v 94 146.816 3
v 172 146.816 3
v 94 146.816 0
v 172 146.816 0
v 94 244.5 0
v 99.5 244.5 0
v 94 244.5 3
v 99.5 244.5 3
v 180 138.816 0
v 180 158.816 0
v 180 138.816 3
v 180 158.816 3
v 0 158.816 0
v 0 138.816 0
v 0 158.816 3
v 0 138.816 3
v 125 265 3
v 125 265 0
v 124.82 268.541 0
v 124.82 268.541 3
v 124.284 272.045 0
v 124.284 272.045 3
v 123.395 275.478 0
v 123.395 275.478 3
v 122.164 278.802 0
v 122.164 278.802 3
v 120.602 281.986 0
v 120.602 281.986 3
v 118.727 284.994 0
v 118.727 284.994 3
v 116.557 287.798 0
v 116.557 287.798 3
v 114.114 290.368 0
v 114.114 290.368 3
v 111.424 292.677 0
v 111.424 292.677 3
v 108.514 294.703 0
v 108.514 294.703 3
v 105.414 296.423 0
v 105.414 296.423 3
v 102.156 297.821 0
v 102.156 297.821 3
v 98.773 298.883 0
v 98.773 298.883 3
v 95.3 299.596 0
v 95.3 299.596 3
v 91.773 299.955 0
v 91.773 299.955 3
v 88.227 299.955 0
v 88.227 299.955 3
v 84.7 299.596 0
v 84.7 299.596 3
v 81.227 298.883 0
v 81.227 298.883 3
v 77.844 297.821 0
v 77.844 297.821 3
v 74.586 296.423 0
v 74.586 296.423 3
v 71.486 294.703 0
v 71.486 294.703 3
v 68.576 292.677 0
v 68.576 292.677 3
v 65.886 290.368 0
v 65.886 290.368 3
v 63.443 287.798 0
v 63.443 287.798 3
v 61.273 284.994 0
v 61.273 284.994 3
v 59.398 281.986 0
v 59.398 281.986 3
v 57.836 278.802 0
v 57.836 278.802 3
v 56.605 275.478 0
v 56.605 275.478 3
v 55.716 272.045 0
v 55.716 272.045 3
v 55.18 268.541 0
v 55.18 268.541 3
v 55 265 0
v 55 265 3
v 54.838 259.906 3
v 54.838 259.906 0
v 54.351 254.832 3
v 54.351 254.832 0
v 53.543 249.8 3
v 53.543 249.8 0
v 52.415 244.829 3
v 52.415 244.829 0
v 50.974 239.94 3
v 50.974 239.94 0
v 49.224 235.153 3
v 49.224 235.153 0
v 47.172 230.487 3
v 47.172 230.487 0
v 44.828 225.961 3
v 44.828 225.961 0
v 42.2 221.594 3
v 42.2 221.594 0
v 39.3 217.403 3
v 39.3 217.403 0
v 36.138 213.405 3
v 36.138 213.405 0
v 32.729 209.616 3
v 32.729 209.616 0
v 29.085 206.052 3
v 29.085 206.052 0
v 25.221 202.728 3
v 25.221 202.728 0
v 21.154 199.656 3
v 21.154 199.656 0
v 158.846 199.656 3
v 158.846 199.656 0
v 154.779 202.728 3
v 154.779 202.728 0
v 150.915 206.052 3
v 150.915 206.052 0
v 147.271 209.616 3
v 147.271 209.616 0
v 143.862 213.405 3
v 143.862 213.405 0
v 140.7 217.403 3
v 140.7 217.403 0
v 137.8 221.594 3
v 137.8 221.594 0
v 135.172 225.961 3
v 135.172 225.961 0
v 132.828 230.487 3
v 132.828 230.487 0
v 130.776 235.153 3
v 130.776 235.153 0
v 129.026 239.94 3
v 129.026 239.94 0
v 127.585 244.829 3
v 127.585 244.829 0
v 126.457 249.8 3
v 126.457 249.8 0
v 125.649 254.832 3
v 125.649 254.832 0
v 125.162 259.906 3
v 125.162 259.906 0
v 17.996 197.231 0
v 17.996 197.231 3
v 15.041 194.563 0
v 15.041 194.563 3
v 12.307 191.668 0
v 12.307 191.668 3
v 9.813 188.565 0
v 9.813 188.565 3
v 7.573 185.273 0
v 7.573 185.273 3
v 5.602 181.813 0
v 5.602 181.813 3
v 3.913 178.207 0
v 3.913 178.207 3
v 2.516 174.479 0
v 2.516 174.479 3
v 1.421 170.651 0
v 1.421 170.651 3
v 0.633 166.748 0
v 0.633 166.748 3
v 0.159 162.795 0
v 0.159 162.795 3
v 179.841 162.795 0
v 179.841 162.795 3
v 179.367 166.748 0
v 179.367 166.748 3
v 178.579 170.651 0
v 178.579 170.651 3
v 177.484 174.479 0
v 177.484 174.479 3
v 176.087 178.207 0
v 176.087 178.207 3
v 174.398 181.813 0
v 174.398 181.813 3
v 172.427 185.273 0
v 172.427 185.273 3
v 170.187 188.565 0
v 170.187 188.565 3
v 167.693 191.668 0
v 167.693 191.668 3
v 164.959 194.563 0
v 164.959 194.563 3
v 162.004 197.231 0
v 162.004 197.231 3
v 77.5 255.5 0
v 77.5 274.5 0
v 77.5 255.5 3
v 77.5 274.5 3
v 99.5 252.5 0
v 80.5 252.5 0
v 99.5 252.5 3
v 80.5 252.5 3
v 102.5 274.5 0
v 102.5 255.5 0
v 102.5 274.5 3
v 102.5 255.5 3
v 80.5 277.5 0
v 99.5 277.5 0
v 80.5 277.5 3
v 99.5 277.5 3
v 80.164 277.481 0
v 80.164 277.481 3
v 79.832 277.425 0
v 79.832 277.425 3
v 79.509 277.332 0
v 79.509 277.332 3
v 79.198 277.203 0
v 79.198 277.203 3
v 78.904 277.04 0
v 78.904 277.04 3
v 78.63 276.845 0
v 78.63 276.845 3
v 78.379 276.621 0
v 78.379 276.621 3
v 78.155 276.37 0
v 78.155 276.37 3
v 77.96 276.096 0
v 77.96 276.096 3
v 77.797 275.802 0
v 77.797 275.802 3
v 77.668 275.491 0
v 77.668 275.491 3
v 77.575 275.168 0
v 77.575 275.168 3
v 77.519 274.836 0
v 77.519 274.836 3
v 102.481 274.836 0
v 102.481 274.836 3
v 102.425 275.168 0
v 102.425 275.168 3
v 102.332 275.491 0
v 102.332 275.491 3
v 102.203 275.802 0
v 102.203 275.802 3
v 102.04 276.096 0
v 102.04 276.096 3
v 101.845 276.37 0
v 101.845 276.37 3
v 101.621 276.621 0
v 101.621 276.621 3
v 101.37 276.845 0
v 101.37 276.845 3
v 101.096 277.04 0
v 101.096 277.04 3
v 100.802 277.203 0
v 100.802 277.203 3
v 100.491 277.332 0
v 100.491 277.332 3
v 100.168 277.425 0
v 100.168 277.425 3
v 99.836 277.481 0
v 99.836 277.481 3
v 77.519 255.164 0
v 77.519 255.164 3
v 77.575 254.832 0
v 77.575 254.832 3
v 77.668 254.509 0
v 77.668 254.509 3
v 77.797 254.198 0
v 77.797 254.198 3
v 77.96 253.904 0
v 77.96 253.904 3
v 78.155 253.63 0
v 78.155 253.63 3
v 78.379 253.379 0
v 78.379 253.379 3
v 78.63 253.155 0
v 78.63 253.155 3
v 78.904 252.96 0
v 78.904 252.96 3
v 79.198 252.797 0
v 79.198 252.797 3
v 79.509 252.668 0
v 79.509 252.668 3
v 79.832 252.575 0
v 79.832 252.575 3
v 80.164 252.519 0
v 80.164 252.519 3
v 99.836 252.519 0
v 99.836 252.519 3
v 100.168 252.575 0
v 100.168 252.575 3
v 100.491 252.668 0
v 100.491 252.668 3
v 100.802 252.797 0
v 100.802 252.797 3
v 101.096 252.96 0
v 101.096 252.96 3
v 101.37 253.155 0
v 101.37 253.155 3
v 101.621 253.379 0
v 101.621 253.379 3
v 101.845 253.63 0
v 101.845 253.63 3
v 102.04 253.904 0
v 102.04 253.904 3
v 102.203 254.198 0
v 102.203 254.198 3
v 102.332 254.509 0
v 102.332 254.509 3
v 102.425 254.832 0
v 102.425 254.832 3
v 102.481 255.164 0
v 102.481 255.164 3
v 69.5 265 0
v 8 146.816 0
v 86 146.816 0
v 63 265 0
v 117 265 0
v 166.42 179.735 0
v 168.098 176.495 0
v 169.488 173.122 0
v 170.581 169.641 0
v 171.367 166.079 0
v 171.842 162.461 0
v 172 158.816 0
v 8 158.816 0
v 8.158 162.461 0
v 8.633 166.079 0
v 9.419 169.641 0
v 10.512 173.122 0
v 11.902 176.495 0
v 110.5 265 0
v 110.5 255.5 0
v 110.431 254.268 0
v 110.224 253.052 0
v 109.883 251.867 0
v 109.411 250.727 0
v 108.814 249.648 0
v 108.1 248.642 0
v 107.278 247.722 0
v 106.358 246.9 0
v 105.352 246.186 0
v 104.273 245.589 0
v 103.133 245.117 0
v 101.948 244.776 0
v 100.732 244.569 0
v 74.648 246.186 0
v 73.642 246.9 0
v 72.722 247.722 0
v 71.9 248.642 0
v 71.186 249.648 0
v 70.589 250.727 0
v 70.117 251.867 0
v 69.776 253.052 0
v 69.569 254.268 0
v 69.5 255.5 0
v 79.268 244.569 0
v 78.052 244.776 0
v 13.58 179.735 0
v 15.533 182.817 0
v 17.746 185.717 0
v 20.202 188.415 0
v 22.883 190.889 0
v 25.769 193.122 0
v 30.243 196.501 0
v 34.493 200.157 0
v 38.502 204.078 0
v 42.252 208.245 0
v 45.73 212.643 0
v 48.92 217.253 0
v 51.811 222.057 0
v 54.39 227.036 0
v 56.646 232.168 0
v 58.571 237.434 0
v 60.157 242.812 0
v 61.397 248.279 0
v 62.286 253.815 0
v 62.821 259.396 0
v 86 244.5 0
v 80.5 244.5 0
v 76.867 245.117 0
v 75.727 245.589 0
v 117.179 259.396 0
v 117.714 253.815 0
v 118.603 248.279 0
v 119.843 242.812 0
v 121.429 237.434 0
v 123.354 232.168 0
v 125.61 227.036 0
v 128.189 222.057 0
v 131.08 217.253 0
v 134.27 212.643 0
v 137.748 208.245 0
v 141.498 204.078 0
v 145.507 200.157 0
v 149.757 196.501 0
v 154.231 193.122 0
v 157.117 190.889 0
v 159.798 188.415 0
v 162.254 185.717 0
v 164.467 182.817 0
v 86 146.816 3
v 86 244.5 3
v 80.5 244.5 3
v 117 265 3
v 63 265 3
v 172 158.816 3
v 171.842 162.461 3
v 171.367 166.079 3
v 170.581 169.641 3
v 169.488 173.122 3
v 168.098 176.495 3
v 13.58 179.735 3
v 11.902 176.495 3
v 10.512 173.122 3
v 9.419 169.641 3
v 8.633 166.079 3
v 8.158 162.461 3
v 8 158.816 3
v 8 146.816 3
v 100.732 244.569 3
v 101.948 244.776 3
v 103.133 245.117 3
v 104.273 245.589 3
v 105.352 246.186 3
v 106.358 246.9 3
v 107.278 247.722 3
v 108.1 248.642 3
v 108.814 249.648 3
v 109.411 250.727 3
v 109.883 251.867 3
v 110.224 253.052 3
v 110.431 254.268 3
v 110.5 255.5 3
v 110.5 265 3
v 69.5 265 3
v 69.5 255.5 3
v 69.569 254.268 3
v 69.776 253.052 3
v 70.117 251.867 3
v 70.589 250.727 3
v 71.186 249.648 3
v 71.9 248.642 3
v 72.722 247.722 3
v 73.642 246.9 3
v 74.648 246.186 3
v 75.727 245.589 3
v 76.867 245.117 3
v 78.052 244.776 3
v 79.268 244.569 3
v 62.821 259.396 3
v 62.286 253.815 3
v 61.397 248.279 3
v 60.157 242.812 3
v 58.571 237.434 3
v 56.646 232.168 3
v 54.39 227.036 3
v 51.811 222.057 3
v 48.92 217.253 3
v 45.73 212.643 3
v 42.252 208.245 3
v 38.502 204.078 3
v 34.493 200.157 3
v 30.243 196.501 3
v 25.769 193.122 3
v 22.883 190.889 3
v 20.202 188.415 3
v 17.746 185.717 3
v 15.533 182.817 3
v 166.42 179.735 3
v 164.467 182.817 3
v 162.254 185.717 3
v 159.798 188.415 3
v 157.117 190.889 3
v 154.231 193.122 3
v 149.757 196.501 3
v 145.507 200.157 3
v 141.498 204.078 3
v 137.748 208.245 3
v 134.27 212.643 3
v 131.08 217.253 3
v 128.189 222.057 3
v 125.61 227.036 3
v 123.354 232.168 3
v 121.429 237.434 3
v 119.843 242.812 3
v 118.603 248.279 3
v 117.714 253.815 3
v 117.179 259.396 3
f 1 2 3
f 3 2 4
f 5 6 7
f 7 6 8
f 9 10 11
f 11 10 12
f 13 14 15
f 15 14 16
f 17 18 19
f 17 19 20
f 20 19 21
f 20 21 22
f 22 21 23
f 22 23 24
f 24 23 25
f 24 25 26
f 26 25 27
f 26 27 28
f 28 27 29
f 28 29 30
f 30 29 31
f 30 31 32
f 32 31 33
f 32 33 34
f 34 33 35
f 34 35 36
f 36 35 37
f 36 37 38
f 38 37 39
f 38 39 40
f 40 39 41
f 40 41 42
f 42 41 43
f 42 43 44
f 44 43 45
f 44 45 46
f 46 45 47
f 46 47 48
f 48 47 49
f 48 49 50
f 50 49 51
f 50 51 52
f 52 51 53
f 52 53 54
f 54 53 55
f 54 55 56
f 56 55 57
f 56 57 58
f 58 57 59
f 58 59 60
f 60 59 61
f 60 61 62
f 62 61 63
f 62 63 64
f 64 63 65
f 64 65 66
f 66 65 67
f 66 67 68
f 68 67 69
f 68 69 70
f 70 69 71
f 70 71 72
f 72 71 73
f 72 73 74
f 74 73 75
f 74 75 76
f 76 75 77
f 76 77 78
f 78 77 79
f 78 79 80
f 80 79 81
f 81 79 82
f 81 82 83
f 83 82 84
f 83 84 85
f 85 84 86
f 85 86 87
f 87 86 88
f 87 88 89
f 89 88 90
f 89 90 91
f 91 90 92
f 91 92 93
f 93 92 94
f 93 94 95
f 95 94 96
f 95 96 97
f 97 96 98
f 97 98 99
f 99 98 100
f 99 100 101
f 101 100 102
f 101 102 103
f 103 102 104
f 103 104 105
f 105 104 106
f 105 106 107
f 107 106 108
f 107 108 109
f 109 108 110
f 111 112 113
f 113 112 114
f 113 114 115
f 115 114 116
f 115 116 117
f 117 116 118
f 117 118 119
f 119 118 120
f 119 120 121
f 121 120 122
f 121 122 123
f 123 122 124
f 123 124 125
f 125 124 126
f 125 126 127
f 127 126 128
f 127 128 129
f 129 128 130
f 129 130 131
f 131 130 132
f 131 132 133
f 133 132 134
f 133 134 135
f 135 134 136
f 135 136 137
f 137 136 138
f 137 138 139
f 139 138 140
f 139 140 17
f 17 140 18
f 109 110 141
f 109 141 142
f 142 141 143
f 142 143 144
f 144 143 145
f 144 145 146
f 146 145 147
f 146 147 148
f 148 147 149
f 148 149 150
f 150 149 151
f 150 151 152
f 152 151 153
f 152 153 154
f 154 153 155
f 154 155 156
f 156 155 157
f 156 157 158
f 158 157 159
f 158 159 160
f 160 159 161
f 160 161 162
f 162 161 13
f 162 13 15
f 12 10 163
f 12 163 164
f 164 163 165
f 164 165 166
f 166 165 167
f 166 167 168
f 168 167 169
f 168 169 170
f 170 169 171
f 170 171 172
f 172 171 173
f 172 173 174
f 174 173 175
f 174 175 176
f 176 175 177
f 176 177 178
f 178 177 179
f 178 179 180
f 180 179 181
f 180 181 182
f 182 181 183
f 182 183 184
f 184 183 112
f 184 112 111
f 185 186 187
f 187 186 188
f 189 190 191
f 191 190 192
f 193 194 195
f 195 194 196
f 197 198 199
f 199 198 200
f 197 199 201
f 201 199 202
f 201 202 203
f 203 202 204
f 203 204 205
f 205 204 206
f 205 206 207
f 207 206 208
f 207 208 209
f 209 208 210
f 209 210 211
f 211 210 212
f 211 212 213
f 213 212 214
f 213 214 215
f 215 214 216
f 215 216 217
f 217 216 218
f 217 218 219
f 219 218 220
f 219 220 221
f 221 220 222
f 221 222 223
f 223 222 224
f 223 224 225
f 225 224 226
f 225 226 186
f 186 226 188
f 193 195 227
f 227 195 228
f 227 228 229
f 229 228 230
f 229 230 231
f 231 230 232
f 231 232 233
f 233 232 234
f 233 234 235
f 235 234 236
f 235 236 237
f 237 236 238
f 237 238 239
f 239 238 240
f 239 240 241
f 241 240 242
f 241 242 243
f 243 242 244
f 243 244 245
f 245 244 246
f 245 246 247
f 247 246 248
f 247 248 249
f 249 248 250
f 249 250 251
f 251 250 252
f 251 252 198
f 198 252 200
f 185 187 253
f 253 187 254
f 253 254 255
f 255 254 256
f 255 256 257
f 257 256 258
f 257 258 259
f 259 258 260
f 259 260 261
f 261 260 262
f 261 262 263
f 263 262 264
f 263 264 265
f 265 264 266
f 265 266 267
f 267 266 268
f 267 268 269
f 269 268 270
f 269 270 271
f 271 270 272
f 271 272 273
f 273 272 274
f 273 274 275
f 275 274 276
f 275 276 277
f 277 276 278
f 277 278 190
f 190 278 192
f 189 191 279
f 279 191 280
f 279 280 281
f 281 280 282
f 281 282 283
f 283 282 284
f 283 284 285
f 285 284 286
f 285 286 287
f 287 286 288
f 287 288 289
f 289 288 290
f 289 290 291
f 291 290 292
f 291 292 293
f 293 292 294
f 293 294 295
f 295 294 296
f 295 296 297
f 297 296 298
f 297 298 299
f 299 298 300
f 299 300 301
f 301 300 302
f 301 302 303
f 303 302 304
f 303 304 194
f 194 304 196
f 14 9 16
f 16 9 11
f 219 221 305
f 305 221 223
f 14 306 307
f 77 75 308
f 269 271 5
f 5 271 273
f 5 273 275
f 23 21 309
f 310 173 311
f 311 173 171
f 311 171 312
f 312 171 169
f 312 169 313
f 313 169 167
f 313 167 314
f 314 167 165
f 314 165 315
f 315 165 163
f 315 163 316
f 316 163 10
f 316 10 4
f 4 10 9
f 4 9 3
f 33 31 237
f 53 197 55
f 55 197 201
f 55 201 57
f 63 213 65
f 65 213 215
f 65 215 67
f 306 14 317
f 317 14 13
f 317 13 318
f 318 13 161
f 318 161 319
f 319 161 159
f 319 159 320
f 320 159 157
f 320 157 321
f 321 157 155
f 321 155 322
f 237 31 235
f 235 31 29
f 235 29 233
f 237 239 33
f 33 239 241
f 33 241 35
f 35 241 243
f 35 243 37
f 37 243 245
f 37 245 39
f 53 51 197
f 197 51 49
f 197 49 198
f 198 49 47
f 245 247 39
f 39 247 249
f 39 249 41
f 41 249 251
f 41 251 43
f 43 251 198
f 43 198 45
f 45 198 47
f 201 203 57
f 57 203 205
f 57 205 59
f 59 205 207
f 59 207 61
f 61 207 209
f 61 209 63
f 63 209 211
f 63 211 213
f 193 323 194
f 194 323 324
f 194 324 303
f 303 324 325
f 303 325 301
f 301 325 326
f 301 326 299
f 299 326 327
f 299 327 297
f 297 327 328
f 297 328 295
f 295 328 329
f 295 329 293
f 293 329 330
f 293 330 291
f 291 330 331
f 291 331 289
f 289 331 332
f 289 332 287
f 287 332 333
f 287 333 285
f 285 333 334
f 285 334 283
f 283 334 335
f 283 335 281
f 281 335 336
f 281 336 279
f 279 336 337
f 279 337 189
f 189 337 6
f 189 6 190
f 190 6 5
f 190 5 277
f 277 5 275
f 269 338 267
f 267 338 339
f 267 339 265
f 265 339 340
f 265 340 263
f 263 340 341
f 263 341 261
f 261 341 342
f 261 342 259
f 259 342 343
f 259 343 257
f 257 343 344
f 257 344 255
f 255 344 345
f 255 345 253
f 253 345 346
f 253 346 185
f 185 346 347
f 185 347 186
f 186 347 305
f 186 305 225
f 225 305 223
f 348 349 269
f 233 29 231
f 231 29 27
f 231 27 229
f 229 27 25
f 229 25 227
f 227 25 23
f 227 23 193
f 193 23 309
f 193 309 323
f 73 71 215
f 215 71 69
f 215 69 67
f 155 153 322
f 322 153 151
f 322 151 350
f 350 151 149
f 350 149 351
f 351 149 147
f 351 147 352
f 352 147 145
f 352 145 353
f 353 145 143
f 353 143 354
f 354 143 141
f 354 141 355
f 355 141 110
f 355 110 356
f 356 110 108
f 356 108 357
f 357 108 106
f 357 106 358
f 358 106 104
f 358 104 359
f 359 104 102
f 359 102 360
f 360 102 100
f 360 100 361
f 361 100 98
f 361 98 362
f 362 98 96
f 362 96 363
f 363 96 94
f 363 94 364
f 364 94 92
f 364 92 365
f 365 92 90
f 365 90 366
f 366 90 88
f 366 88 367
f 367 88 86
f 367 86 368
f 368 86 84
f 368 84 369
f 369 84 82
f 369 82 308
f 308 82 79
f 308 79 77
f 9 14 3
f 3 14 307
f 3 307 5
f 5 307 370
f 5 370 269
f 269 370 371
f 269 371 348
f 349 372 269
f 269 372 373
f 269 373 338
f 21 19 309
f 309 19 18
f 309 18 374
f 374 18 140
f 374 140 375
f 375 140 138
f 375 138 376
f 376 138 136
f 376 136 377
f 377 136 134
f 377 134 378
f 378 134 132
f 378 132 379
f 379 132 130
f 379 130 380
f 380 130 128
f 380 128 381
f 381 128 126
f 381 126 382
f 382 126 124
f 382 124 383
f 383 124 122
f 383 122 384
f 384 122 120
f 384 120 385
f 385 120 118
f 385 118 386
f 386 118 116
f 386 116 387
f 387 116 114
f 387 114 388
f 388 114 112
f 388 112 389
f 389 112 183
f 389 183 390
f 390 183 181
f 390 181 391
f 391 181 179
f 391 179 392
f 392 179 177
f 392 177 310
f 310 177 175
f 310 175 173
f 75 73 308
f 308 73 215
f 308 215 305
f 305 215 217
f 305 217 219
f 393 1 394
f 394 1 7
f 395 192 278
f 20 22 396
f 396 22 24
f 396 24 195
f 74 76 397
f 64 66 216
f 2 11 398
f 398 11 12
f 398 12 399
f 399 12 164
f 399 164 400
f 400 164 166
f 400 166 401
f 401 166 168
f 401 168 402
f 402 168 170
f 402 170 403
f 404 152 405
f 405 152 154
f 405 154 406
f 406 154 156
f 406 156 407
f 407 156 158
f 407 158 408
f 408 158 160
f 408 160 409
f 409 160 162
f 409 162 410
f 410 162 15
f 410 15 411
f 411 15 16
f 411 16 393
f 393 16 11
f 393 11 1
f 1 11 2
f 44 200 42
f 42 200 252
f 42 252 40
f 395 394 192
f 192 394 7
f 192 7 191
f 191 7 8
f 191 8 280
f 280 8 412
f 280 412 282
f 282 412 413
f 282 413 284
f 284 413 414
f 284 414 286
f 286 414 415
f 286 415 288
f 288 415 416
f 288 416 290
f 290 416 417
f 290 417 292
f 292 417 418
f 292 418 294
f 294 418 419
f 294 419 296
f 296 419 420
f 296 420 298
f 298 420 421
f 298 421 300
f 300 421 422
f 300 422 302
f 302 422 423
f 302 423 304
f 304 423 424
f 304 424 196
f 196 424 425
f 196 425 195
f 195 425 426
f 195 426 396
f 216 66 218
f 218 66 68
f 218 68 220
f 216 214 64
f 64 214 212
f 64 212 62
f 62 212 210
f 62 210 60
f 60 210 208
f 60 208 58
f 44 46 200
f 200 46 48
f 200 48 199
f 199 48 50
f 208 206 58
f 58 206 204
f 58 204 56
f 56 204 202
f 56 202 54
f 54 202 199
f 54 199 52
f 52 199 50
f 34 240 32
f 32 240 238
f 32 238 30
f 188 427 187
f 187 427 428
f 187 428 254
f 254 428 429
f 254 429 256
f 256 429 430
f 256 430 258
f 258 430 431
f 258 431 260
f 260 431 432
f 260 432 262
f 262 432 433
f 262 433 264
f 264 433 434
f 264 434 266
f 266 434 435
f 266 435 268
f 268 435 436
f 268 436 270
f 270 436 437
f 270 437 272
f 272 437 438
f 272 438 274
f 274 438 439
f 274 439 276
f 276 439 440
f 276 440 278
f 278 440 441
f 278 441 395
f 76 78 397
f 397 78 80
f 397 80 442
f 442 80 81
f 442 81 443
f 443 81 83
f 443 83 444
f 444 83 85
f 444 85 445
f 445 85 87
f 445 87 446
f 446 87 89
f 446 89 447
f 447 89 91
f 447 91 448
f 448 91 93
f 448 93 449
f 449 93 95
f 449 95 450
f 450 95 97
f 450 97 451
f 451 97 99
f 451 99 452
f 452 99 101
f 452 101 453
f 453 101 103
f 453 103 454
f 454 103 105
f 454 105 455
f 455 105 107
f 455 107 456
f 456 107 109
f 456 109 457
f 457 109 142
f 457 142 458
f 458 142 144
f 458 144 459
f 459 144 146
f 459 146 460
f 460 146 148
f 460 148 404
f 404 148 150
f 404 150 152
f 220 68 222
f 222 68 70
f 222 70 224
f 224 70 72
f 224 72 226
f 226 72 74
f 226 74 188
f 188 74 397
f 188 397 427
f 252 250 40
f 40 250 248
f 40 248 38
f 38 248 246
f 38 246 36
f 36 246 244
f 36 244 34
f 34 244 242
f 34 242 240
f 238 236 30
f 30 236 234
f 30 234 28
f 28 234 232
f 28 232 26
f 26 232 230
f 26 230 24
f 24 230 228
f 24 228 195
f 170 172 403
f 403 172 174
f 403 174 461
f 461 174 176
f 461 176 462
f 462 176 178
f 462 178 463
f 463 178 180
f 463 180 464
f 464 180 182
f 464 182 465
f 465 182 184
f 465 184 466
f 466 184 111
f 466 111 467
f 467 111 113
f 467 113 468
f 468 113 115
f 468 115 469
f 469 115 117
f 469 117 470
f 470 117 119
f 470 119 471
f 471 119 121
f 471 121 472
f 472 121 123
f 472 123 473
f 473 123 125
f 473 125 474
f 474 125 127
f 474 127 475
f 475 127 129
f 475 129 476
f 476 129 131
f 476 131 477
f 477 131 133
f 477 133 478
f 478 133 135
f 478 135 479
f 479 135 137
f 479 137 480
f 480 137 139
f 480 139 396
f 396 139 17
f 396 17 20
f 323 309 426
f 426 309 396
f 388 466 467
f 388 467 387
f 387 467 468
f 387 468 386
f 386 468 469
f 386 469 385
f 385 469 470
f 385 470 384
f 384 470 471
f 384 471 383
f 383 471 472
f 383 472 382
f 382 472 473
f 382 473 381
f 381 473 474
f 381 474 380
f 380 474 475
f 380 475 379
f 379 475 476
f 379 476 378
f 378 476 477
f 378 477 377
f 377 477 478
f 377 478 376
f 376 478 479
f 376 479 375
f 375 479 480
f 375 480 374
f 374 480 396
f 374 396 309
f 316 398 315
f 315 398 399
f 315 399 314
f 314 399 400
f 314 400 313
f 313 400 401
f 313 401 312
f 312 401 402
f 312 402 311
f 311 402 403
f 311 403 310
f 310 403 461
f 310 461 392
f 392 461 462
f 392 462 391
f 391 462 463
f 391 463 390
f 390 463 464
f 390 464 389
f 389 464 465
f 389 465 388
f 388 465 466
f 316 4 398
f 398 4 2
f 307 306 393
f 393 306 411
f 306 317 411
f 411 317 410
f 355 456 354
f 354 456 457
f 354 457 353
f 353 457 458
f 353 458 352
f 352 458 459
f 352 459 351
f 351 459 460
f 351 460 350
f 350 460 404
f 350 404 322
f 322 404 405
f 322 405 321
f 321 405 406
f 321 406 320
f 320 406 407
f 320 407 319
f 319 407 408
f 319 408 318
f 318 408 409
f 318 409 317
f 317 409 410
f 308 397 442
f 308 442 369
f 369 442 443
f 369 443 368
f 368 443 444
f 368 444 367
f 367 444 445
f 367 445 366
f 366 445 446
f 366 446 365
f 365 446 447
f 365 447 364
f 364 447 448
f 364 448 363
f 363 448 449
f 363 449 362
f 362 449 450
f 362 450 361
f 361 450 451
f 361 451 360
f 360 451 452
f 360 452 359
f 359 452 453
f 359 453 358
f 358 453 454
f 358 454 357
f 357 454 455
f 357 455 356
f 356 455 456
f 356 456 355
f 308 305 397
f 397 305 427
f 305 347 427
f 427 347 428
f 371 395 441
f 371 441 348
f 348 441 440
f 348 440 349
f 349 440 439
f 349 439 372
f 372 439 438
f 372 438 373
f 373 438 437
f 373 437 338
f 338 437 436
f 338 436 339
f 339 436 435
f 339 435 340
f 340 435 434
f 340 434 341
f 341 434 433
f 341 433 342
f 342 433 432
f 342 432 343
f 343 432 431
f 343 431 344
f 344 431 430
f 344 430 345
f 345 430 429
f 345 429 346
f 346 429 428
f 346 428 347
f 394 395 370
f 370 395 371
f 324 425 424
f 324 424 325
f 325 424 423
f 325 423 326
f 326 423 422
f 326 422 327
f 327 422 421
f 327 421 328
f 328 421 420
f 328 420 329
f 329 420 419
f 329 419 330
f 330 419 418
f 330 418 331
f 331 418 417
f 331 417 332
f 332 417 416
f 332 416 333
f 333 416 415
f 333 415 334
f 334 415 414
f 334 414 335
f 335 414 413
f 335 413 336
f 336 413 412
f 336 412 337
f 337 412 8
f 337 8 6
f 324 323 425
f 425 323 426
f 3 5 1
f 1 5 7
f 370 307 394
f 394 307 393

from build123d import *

# Parameters (mm, degrees)
ESQUISSE1_W                  = 180
ESQUISSE1_H                  = 300
BOSS_EXTRU_1_DEPTH           = 15
ESQUISSE2_W                  = 180
ESQUISSE2_H                  = 8.1
ENL_V_MAT_EXTRU_1_DEPTH      = 5
ENL_V_MAT_EXTRU_2_DEPTH      = 10
ENL_V_START                  = -180
ENL_V_MAT_EXTRU_3_DEPTH      = 10
ENL_V_MAT_EXTRU_4_DEPTH      = 351.178525898
ENL_V_MAT_EXTRU_4_DEPTH_BACK = 351.178525898
CONG_1_R                     = 50
ENL_V_MAT_EXTRU_5_DEPTH      = 351.178525898
ENL_V_MAT_EXTRU_5_DEPTH_BACK = 351.178525898
ESQUISSE5_W                  = 25
ESQUISSE5_H                  = 25
CONG_2_R                     = 3
ENL_V_MAT_EXTRU_6_DEPTH      = 351.178525898
ENL_V_MAT_EXTRU_6_DEPTH_BACK = 351.178525898
ESQUISSE6_W                  = 180
ESQUISSE6_H                  = 138.816197092
ENL_V_MAT_EXTRU_7_DEPTH      = 12
ENL_V_MAT_EXTRU_8_DEPTH      = 350.869975848
ENL_V_MAT_EXTRU_8_DEPTH_BACK = 350.869975848
ESQUISSE10_W                 = 8
ESQUISSE10_H                 = 97.683802908
BOSS_EXTRU_2_DEPTH           = 3


with BuildPart() as part:
    # Esquisse1 → Boss.-Extru.1 (new body)
    with BuildSketch(Plane.XY):
        with Locations((90, 150)):
            Rectangle(ESQUISSE1_W, ESQUISSE1_H)
    extrude(amount=BOSS_EXTRU_1_DEPTH)

    # Esquisse2 → Enlèv. mat.-Extru.1 (cut)
    with BuildSketch(Plane.XY.offset(15)):
        with Locations((90, 12.05)):
            Rectangle(ESQUISSE2_W, ESQUISSE2_H)
    extrude(amount=-ENL_V_MAT_EXTRU_1_DEPTH, mode=Mode.SUBTRACT)

    # Esquisse3 → Enlèv. mat.-Extru.2 (cut)
    with BuildSketch(Plane.ZY):
        Polygon((0, 35), (0, 5), (15, 7.644904711), (15, 32.355095289), align=None)
        Polygon((0, 51), (15, 53.644904711), (15, 78.355095289), (0, 81), align=None)
    extrude(amount=-ENL_V_MAT_EXTRU_2_DEPTH, mode=Mode.SUBTRACT)

    # Esquisse3<2> → Enlèv. mat.-Extru.3 (cut)
    with BuildSketch(Plane.ZY.offset(ENL_V_START)):
        Polygon((0, 35), (0, 5), (15, 7.644904711), (15, 32.355095289), align=None)
        Polygon((0, 51), (15, 53.644904711), (15, 78.355095289), (0, 81), align=None)
    extrude(amount=ENL_V_MAT_EXTRU_3_DEPTH, mode=Mode.SUBTRACT)

    # Esquisse4 → Enlèv. mat.-Extru.4 (cut, two sides: drawn at the far end of the back side and taken through both)
    with BuildSketch(Plane(origin=(0, 0, 0), x_dir=(-1, 0, 0), z_dir=(0, 0, -1)).offset(-ENL_V_MAT_EXTRU_4_DEPTH_BACK)):
        with BuildLine():
            Line((0, 189.006579232), (0, 300))
            Line((0, 300), (-90, 310))
            Line((-90, 310), (-180, 300))
            Line((-180, 300), (-180, 189.006579232))
            ThreePointArc((-180, 189.006579232), (-140.192593016, 218.095842402), (-125, 265))
            ThreePointArc((-125, 265), (-90, 300), (-55, 265))
            ThreePointArc((-55, 265), (-39.807406984, 218.095842402), (0, 189.006579232))
        make_face()
    extrude(amount=ENL_V_MAT_EXTRU_4_DEPTH + ENL_V_MAT_EXTRU_4_DEPTH_BACK, mode=Mode.SUBTRACT)

    # Congé1
    cong_1_edges = [part.edges().sort_by_distance(p)[0] for p in [
        (0, 189.006579232, 7.5),
        (180, 189.006579232, 7.5),
    ]]
    fillet(cong_1_edges, radius=CONG_1_R)

    # Esquisse5 → Enlèv. mat.-Extru.5 (cut, two sides: drawn at the far end of the back side and taken through both)
    with BuildSketch(Plane(origin=(0, 0, 0), x_dir=(-1, 0, 0), z_dir=(0, 0, -1)).offset(-ENL_V_MAT_EXTRU_5_DEPTH_BACK)):
        with Locations((-90, 265)):
            Rectangle(ESQUISSE5_W, ESQUISSE5_H)
    extrude(amount=ENL_V_MAT_EXTRU_5_DEPTH + ENL_V_MAT_EXTRU_5_DEPTH_BACK, mode=Mode.SUBTRACT)

    # Congé2
    cong_2_edges = [part.edges().sort_by_distance(p)[0] for p in [
        (77.5, 277.5, 7.5),
        (77.5, 252.5, 7.5),
        (102.5, 252.5, 7.5),
        (102.5, 277.5, 7.5),
    ]]
    fillet(cong_2_edges, radius=CONG_2_R)

    # Esquisse6 → Enlèv. mat.-Extru.6 (cut, two sides: drawn at the far end of the back side and taken through both)
    with BuildSketch(Plane.XY.offset(15).offset(-ENL_V_MAT_EXTRU_6_DEPTH_BACK)):
        with Locations((90, 69.408098546)):
            Rectangle(ESQUISSE6_W, ESQUISSE6_H)
    extrude(amount=ENL_V_MAT_EXTRU_6_DEPTH + ENL_V_MAT_EXTRU_6_DEPTH_BACK, mode=Mode.SUBTRACT)

    # Esquisse8 → Enlèv. mat.-Extru.7 (cut)
    with BuildSketch(Plane.XY.offset(15)):
        with BuildLine():
            Line((0, 158.816197092), (0, 138.816197092))
            Line((0, 138.816197092), (180, 138.816197092))
            Line((180, 138.816197092), (180, 158.816197092))
            ThreePointArc((180, 158.816197092), (174.397678387, 181.812852367), (158.846153846, 199.656121287))
            ThreePointArc((158.846153846, 199.656121287), (133.963714581, 228.20535156), (125, 265))
            ThreePointArc((125, 265), (90, 300), (55, 265))
            ThreePointArc((55, 265), (46.036285419, 228.20535156), (21.153846154, 199.656121287))
            ThreePointArc((21.153846154, 199.656121287), (5.602321613, 181.812852367), (0, 158.816197092))
        make_face()
        with BuildLine():
            Line((102.5, 274.5), (102.5, 255.5))
            ThreePointArc((102.5, 255.5), (101.621320344, 253.378679656), (99.5, 252.5))
            Line((99.5, 252.5), (80.5, 252.5))
            ThreePointArc((80.5, 252.5), (78.378679656, 253.378679656), (77.5, 255.5))
            Line((77.5, 255.5), (77.5, 274.5))
            ThreePointArc((77.5, 274.5), (78.378679656, 276.621320344), (80.5, 277.5))
            Line((80.5, 277.5), (99.5, 277.5))
            ThreePointArc((99.5, 277.5), (101.621320344, 276.621320344), (102.5, 274.5))
        make_face(mode=Mode.SUBTRACT)
    extrude(amount=-ENL_V_MAT_EXTRU_7_DEPTH, mode=Mode.SUBTRACT)

    # Esquisse9 → Enlèv. mat.-Extru.8 (cut, two sides: drawn at the far end of the back side and taken through both)
    with BuildSketch(Plane.XY.offset(3).offset(-ENL_V_MAT_EXTRU_8_DEPTH_BACK)):
        with BuildLine():
            Line((110.5, 255.5), (110.5, 265))
            Line((110.5, 265), (117, 265))
            ThreePointArc((117, 265), (126.860086039, 224.525886716), (154.230769231, 193.121733416))
            ThreePointArc((154.230769231, 193.121733416), (167.294049845, 178.133387523), (172, 158.816197092))
            Line((172, 158.816197092), (172, 146.816197092))
            Line((172, 146.816197092), (8, 146.816197092))
            Line((8, 146.816197092), (8, 158.816197092))
            ThreePointArc((8, 158.816197092), (12.705950155, 178.133387523), (25.769230769, 193.121733416))
            ThreePointArc((25.769230769, 193.121733416), (53.139913961, 224.525886716), (63, 265))
            Line((63, 265), (69.5, 265))
            Line((69.5, 265), (69.5, 255.5))
            ThreePointArc((69.5, 255.5), (72.721825407, 247.721825407), (80.5, 244.5))
            Line((80.5, 244.5), (99.5, 244.5))
            ThreePointArc((99.5, 244.5), (107.278174593, 247.721825407), (110.5, 255.5))
        make_face()
    extrude(amount=ENL_V_MAT_EXTRU_8_DEPTH + ENL_V_MAT_EXTRU_8_DEPTH_BACK, mode=Mode.SUBTRACT)

    # Esquisse10 → Boss.-Extru.2 (add)
    with BuildSketch(Plane.XY.offset(3)):
        with Locations((90, 195.658098546)):
            Rectangle(ESQUISSE10_W, ESQUISSE10_H)
    extrude(amount=-BOSS_EXTRU_2_DEPTH)


solid = part.part
